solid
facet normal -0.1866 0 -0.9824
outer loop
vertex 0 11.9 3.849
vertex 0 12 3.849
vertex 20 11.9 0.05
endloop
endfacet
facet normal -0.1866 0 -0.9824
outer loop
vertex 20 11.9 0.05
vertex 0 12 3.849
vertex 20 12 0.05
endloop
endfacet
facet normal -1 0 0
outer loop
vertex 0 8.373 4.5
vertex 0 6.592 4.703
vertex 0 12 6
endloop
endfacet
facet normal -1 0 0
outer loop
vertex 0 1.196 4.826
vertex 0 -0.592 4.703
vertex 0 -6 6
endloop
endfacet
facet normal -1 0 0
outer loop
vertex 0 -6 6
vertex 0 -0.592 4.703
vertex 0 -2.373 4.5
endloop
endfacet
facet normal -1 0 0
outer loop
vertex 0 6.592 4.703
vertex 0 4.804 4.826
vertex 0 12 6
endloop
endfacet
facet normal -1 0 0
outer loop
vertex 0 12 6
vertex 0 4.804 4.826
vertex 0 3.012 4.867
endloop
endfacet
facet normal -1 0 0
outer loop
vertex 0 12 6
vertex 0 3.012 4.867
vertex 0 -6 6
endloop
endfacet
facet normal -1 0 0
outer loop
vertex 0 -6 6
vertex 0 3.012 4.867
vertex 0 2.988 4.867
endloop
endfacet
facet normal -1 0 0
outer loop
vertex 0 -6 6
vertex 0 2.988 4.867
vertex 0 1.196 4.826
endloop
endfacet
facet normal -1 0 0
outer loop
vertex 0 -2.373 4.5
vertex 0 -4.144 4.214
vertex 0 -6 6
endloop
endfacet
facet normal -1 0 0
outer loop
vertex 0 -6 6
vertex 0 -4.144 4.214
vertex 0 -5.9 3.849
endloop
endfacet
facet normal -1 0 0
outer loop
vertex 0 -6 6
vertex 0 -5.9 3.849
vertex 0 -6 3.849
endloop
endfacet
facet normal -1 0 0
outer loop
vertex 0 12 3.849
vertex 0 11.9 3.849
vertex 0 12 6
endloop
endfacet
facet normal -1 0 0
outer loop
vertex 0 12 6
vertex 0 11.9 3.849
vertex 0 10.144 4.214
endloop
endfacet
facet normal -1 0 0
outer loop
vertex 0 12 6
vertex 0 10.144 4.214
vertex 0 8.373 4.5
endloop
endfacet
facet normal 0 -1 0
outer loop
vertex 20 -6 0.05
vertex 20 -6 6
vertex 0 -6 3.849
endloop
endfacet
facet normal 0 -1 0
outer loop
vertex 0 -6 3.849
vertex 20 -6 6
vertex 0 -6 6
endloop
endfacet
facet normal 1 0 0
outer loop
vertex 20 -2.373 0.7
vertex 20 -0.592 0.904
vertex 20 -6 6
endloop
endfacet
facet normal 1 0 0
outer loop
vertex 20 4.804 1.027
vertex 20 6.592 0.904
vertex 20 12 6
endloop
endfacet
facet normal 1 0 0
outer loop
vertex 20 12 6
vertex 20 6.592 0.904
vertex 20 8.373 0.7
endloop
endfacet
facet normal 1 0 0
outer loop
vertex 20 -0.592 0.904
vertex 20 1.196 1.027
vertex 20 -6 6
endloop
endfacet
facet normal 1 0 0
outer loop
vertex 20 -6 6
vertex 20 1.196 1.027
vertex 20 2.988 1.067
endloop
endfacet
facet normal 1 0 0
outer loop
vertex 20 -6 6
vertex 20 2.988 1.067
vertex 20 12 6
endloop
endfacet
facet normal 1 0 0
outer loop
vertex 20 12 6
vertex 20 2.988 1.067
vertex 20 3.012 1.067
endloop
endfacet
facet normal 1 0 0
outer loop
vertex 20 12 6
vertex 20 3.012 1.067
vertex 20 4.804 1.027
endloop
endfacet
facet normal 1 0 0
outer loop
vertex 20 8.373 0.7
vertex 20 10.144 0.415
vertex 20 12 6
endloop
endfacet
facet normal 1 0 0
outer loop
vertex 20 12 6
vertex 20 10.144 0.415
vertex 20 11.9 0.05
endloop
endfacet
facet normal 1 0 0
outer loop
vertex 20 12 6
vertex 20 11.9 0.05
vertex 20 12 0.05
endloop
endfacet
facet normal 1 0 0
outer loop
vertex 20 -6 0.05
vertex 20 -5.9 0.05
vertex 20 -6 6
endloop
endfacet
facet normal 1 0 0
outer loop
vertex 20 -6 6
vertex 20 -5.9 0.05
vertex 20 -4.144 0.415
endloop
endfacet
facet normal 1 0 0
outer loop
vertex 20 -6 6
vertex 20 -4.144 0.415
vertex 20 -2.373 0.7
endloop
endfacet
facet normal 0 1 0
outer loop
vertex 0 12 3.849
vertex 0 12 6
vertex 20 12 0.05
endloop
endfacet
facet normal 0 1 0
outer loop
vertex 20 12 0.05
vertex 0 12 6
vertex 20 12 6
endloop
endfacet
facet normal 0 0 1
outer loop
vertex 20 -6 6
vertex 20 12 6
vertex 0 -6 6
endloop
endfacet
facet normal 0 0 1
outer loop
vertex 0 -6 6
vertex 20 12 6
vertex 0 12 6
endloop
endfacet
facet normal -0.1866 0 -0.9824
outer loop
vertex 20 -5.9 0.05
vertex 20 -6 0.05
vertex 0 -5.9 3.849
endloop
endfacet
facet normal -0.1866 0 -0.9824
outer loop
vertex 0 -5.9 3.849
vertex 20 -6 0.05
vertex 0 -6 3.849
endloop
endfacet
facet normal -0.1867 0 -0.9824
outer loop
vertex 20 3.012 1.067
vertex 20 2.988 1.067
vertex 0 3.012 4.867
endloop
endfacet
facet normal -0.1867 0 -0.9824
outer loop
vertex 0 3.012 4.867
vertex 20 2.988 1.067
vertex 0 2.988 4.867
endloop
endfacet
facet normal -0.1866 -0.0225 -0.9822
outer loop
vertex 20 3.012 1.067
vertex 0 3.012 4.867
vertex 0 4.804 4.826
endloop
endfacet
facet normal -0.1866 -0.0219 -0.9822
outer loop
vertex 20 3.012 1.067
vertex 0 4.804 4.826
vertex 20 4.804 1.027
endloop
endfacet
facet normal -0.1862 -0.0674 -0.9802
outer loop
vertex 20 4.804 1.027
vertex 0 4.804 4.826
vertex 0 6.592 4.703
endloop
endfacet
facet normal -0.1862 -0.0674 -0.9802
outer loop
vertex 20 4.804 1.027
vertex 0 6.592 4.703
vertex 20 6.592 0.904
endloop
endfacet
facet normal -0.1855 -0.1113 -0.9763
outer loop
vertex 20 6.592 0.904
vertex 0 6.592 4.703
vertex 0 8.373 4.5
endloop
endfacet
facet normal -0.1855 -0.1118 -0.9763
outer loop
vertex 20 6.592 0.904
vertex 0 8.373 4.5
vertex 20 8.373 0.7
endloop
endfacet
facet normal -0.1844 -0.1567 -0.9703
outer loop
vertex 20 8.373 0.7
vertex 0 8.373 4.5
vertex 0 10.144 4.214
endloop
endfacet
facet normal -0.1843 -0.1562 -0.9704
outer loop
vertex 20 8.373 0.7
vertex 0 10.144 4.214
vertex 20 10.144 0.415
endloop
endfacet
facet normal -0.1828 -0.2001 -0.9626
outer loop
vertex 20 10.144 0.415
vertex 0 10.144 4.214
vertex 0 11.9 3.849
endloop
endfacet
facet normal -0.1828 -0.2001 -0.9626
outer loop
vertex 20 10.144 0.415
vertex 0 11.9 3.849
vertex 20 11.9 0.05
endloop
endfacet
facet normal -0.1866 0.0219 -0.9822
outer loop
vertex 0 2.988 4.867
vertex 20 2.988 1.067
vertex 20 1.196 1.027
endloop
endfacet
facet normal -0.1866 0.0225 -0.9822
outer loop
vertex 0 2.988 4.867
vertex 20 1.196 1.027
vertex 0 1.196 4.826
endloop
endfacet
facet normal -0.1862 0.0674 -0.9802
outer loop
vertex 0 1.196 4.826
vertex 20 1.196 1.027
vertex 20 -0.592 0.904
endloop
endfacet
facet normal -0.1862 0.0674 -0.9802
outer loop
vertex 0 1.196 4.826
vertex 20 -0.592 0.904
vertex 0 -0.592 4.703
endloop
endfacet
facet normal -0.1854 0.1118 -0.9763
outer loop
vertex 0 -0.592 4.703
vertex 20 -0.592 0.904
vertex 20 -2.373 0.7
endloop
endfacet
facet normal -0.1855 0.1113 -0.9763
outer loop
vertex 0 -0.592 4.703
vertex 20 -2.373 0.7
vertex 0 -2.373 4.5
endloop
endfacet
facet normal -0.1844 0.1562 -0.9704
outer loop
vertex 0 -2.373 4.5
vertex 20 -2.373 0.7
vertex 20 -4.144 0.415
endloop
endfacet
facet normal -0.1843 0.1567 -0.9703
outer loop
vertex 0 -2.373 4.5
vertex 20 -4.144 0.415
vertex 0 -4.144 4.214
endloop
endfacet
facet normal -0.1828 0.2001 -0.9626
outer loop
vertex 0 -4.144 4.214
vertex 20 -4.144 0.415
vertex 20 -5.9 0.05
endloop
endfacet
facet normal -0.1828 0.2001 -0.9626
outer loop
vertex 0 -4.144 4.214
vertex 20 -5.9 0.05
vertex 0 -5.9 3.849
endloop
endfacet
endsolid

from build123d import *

# Parameters (mm, degrees)
ESQUISSE1_W                  = 20
ESQUISSE1_H                  = 18
BOSS_EXTRU_1_DEPTH           = 6
ENL_V_MAT_EXTRU_1_DEPTH      = 28.568097504
ENL_V_MAT_EXTRU_1_DEPTH_BACK = 28.568097504
ESQUISSE4_W                  = 20.759147063
ESQUISSE4_H                  = 17.8
ENL_V_MAT_EXTRU_3_DEPTH      = 1
CONG_2_R                     = 40


with BuildPart() as part:
    # Esquisse1 → Boss.-Extru.1 (new body)
    with BuildSketch(Plane.XY):
        with Locations((10, 3)):
            Rectangle(ESQUISSE1_W, ESQUISSE1_H)
    extrude(amount=BOSS_EXTRU_1_DEPTH)

    # Esquisse2 → Enlèv. mat.-Extru.1 (cut, two sides: drawn at the far end of the back side and taken through both)
    with BuildSketch(Plane(origin=(0, 12, 0), x_dir=(1, 0, 0), z_dir=(0, 1, 0)).offset(-ENL_V_MAT_EXTRU_1_DEPTH_BACK)):
        Polygon((70.960283861, 9.63154869), (20.045630921, -0.0408989), (0, -3.849042594), (0, 0), (0, 51.825265329), (52.974270305, 140.916001049), (123.934554166, 98.72228441), align=None)
    extrude(amount=ENL_V_MAT_EXTRU_1_DEPTH + ENL_V_MAT_EXTRU_1_DEPTH_BACK, mode=Mode.SUBTRACT)

    # Esquisse4 → Enlèv. mat.-Extru.3 (cut)
    with BuildSketch(Plane(origin=(0.705746644, 0, 3.714969257), x_dir=(-0.9824291803850712, 0, 0.1866357562952965), z_dir=(-0.1866357562952965, 0, -0.9824291803850712))):
        with Locations((-9.259758994, 3)):
            Rectangle(ESQUISSE4_W, ESQUISSE4_H)
    extrude(amount=-ENL_V_MAT_EXTRU_3_DEPTH, mode=Mode.SUBTRACT)

    # Congé2
    # the kernel refuses this fillet: 40 mm, written as the material it adds along each edge
    with BuildSketch(Plane(origin=(41.830053891, 11.9, -3.079684565), x_dir=(0, -1, 0), z_dir=(-0.9824291803850712, 0, 0.1866357562952965))) as cong_2_piece_1_section:
        with BuildLine():
            CenterArc((8.888194417, -40), CONG_2_R, 90, 12.838568141)
            Line((0, -1), (0, 0))
            Line((0, 0), (8.888194417, 0))
        make_face()
    cong_2_piece_1 = extrude(amount=64.798673587, mode=Mode.PRIVATE)
    cong_2_piece_1 = split(cong_2_piece_1, bisect_by=Plane(origin=(20, 11.9, -3.079684565), z_dir=(-1, 0, 0)), keep=Keep.TOP, mode=Mode.PRIVATE)
    cong_2_piece_1 = split(cong_2_piece_1, bisect_by=Plane(origin=(0, 11.9, -3.079684565), z_dir=(1, 0, 0)), keep=Keep.TOP, mode=Mode.PRIVATE)
    add(cong_2_piece_1)
    with BuildSketch(Plane(origin=(-21.830053891, -5.9, 9.014064887), x_dir=(-0.1866357562952965, 0, -0.9824291803850712), z_dir=(0.9824291803850712, 0, -0.1866357562952965))) as cong_2_piece_2_section:
        with BuildLine():
            CenterArc((40, 8.888194417), CONG_2_R, 180, 12.838568141)
            Line((0, 8.888194417), (0, 0))
            Line((0, 0), (1, 0))
        make_face()
    cong_2_piece_2 = extrude(amount=64.798673587, mode=Mode.PRIVATE)
    cong_2_piece_2 = split(cong_2_piece_2, bisect_by=Plane(origin=(20, -5.9, 9.014064887), z_dir=(-1, 0, 0)), keep=Keep.TOP, mode=Mode.PRIVATE)
    cong_2_piece_2 = split(cong_2_piece_2, bisect_by=Plane(origin=(0, -5.9, 9.014064887), z_dir=(1, 0, 0)), keep=Keep.TOP, mode=Mode.PRIVATE)
    add(cong_2_piece_2)


solid = part.part
